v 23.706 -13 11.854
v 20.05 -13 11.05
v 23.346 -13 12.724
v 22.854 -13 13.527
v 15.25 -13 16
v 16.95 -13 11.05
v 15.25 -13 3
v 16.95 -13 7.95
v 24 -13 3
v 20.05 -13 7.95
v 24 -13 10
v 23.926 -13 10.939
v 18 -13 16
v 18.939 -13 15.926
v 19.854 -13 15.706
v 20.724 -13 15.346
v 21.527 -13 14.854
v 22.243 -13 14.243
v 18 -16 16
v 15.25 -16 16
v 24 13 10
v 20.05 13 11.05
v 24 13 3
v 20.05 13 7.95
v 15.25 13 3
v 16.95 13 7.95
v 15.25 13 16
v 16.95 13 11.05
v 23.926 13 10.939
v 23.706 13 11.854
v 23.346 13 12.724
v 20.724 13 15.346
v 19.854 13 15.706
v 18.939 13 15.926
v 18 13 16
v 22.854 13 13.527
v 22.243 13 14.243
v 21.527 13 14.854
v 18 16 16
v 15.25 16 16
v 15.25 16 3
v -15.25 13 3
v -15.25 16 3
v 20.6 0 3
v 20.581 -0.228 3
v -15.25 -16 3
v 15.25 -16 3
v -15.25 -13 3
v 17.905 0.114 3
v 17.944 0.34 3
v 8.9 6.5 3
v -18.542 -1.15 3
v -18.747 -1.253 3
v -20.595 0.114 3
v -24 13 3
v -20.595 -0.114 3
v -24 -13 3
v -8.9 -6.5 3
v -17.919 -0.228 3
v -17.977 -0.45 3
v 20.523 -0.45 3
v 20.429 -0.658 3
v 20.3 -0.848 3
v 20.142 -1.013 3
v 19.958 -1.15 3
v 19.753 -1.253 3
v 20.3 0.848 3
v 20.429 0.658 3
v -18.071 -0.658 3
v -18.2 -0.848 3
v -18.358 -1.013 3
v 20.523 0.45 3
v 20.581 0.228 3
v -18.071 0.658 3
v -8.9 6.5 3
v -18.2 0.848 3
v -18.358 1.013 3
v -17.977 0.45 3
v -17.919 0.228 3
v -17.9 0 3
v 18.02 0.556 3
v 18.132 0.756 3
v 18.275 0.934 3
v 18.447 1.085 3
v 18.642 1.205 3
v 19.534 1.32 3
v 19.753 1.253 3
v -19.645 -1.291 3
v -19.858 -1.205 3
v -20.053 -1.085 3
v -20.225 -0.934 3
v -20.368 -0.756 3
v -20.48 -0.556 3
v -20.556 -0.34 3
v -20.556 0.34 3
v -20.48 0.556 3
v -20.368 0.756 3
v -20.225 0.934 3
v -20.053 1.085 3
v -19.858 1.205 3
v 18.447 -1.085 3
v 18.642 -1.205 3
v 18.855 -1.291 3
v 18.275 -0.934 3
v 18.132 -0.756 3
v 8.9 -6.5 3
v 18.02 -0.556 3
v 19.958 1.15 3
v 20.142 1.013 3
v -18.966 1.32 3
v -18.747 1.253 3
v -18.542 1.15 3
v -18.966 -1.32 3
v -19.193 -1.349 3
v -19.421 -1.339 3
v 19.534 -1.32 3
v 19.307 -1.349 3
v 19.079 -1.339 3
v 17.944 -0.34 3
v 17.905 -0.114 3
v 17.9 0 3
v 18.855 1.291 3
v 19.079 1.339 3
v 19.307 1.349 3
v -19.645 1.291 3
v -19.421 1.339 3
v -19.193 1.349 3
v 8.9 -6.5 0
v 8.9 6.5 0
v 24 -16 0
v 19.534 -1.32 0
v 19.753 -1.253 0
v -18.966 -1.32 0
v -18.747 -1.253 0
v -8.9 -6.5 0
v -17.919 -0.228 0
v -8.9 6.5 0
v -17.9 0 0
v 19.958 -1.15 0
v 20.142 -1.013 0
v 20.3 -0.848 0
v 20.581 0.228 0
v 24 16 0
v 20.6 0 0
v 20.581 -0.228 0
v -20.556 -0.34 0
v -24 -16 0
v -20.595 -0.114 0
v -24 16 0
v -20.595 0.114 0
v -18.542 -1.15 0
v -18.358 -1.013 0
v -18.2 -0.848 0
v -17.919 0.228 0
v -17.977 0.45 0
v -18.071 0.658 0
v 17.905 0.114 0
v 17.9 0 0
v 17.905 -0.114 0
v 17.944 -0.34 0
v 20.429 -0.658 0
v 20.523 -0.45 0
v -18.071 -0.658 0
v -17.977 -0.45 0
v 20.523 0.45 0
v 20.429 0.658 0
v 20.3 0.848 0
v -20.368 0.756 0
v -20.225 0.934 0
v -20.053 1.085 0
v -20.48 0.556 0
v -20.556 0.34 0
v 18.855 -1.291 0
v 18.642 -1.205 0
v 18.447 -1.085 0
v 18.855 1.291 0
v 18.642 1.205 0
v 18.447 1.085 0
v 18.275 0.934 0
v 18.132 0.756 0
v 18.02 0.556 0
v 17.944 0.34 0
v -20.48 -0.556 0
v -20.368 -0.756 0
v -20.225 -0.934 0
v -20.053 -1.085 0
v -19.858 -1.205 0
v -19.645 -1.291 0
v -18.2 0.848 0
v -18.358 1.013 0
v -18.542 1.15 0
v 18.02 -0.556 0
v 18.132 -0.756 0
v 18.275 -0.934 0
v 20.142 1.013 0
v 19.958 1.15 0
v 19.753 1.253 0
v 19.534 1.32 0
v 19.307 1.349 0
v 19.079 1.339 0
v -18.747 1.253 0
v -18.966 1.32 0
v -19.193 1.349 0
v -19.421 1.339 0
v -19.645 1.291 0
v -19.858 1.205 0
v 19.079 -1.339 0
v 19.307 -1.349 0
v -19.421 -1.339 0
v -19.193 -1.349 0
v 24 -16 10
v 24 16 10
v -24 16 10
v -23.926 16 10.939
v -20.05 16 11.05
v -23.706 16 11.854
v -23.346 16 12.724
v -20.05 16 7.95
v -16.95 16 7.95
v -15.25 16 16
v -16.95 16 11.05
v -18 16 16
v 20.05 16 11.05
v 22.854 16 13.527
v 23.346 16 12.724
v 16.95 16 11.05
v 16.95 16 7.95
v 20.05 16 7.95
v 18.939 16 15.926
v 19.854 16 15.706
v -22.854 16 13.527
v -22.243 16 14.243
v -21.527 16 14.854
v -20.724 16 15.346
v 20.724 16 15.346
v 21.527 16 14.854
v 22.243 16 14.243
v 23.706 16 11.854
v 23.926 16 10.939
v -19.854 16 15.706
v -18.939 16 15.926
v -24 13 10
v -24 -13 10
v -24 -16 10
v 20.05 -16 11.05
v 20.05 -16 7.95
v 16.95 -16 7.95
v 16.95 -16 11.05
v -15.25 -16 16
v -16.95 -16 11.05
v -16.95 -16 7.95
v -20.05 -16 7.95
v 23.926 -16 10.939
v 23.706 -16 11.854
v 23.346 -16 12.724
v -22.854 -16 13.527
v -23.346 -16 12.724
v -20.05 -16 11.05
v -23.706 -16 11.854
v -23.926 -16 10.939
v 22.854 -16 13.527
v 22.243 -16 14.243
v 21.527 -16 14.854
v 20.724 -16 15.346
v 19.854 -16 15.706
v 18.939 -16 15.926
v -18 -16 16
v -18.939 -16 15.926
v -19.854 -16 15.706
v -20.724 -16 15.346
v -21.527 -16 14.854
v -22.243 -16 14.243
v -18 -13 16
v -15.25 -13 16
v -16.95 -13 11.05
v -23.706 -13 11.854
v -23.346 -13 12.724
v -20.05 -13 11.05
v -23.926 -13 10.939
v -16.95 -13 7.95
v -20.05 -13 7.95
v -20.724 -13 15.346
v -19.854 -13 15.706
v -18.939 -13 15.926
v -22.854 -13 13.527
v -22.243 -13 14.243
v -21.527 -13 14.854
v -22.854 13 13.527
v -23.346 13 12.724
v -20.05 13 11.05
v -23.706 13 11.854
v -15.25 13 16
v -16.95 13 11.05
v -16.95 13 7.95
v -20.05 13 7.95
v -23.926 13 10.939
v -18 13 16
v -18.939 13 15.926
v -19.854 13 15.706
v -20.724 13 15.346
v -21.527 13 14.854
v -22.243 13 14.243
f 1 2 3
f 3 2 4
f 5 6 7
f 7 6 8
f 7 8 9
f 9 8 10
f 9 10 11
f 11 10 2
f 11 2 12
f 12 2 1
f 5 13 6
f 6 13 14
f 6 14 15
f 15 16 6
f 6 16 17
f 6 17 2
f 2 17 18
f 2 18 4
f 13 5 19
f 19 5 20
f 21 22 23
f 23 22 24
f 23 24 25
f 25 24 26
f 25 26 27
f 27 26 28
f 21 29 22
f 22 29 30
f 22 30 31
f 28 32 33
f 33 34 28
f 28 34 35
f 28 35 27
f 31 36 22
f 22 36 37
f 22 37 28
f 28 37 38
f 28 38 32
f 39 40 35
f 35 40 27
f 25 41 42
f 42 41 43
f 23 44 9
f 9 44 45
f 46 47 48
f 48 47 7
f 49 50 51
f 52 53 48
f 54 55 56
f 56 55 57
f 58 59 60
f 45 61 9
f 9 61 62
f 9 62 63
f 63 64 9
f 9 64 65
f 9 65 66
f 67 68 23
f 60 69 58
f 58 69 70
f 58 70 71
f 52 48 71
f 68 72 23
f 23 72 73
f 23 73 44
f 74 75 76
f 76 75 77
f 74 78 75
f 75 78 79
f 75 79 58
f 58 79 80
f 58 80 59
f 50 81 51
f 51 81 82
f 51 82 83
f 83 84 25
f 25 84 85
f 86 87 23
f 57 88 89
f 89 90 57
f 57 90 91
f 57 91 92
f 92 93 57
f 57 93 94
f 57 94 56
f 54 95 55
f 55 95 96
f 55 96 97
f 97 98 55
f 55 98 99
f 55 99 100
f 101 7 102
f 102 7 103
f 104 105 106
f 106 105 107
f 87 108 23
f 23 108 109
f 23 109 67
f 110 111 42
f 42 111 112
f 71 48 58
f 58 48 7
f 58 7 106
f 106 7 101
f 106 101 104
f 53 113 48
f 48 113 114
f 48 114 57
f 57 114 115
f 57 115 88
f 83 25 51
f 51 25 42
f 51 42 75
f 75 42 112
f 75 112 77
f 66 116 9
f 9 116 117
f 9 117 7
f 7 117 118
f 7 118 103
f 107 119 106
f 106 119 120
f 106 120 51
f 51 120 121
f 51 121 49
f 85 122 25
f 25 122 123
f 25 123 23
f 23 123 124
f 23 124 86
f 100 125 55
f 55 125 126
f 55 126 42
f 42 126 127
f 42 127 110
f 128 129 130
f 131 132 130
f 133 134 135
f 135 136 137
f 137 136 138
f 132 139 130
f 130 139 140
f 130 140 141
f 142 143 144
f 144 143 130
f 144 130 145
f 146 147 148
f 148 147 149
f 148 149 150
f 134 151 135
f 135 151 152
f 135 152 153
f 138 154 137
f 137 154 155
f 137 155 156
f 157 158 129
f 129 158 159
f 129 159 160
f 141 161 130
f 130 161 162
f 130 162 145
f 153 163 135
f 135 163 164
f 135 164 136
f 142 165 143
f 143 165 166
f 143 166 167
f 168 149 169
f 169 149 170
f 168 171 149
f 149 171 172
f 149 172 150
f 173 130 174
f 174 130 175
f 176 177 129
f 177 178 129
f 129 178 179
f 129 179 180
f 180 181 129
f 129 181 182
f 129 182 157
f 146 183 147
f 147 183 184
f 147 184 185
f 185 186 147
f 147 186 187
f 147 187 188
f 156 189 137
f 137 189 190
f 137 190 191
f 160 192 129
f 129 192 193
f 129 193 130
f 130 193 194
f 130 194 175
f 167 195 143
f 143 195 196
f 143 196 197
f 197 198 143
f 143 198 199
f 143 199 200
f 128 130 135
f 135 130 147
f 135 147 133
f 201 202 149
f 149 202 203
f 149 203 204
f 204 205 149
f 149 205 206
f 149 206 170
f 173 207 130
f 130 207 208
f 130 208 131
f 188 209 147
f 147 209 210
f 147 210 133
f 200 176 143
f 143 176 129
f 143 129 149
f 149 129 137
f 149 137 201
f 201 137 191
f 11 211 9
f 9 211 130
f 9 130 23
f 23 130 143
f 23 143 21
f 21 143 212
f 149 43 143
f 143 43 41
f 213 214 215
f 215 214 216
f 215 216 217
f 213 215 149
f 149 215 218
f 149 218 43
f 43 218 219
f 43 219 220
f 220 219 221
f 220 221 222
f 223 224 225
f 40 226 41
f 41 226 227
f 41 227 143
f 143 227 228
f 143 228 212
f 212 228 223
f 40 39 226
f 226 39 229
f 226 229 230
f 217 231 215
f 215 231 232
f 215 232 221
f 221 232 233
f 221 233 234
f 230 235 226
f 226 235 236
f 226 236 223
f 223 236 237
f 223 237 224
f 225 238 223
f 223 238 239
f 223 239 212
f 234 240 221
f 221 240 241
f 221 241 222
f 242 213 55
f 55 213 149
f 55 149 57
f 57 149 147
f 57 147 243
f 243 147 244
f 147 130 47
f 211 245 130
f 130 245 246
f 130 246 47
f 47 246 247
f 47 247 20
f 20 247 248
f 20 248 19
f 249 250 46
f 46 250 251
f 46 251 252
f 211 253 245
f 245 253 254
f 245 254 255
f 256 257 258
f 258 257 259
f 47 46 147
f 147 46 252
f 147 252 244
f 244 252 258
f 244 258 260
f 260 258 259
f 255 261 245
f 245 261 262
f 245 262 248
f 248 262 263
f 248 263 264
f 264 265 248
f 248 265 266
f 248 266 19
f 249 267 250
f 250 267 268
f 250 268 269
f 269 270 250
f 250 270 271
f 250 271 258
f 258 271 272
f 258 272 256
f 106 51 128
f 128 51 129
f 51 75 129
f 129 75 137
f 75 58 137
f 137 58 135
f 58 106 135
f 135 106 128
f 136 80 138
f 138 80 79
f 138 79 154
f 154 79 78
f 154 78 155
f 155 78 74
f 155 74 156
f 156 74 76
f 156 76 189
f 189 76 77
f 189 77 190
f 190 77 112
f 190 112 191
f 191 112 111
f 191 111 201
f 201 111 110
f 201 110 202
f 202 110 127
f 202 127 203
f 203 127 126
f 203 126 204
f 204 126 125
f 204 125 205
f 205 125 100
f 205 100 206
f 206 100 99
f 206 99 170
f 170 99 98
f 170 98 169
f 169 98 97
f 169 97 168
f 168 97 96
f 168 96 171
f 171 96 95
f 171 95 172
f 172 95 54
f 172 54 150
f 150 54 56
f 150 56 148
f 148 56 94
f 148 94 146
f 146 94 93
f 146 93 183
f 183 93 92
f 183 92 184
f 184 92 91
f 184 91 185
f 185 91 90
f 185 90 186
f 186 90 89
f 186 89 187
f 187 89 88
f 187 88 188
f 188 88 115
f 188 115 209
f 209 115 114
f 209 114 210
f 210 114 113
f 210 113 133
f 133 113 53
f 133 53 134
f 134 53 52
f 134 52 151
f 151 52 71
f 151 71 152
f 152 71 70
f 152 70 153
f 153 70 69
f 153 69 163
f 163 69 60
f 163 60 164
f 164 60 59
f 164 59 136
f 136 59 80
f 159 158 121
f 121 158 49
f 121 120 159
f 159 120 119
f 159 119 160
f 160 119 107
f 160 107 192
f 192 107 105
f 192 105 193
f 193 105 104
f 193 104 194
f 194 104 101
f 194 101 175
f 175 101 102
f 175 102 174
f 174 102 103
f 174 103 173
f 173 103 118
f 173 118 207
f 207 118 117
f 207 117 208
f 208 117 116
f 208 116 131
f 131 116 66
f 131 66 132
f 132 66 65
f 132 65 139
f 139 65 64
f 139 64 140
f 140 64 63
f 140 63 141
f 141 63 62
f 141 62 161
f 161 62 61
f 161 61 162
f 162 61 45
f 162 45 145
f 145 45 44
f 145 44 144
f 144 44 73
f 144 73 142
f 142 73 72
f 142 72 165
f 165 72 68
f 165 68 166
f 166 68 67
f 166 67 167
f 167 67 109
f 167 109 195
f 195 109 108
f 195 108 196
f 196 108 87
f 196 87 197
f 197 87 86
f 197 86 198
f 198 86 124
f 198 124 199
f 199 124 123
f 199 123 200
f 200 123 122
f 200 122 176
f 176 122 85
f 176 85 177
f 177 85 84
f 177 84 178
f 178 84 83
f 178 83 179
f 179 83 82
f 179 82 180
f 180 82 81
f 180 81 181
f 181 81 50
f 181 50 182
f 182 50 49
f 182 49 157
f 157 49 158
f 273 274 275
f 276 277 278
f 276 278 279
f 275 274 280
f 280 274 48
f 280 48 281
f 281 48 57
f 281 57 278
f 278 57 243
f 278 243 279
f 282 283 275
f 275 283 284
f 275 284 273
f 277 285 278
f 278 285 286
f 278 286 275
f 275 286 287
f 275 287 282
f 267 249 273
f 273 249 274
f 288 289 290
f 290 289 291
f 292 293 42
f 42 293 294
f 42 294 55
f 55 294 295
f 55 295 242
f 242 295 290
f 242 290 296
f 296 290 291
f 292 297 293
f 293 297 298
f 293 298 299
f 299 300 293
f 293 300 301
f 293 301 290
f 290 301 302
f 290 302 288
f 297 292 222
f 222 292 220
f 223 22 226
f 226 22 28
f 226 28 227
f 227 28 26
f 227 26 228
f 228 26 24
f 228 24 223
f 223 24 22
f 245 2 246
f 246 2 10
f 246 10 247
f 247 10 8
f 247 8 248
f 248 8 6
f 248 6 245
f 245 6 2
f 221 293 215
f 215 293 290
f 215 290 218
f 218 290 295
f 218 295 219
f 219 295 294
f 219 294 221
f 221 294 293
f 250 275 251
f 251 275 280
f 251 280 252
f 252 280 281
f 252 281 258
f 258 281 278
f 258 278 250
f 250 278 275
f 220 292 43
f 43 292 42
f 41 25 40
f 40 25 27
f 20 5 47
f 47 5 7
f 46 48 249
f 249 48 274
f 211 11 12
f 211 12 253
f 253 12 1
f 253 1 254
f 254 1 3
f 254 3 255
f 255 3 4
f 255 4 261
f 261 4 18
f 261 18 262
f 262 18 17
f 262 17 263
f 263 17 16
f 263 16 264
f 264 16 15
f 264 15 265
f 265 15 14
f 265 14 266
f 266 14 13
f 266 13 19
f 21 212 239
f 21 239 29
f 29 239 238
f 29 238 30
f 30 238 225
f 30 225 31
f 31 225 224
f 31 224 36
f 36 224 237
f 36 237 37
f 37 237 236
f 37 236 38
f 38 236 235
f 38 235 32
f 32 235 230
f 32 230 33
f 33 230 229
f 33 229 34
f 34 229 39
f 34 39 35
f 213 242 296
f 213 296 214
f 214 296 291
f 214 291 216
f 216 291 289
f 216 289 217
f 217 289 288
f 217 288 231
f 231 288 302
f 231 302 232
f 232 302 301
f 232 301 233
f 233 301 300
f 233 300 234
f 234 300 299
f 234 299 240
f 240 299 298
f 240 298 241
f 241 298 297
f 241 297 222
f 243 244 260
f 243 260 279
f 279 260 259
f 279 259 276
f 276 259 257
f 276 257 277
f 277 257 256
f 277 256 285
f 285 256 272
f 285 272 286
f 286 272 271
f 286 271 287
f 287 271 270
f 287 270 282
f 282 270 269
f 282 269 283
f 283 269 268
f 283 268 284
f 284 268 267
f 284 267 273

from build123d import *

# Parameters (mm, degrees)
ESBO_O6_W                  = 48
ESBO_O6_H                  = 32
ESBO_O6_W_2                = 17.8
ESBO_O6_H_2                = 13
RESSALTO_EXTRUS_O2_DEPTH   = 3
ESBO_O7_R                  = 1.35
CORTE_EXTRUS_O3_DEPTH      = 30
ESBO_O8_W                  = 48
ESBO_O8_H                  = 3
RESSALTO_EXTRUS_O3_DEPTH   = 13
CORTE_EXTRUS_O4_DEPTH      = 41.902322672
CORTE_EXTRUS_O4_DEPTH_BACK = 41.902322672
ESBO_O10_W                 = 3.1
ESBO_O10_H                 = 3.1
CORTE_EXTRUS_O5_DEPTH      = 41.902322672
CORTE_EXTRUS_O5_DEPTH_BACK = 41.902322672
ESBO_O11_W                 = 30.5
ESBO_O11_H                 = 13
FILETE1_R                  = 6
FILETE2_R                  = 6
FILETE3_R                  = 6


with BuildPart() as part:
    # Esboço6 → Ressalto-extrusão2 (new body)
    with BuildSketch(Plane.XY):
        Rectangle(ESBO_O6_W, ESBO_O6_H)
        Rectangle(ESBO_O6_W_2, ESBO_O6_H_2, mode=Mode.SUBTRACT)
    extrude(amount=RESSALTO_EXTRUS_O2_DEPTH)

    # Esboço7 → Corte-extrusão3 (cut, through all)
    with BuildSketch(Plane.XY.offset(3)):
        with Locations((-19.25, 0)):
            Circle(ESBO_O7_R)
        with Locations(Location((19.25, 0, 0), (0, 0, 180))):
            Circle(ESBO_O7_R)
    extrude(amount=-CORTE_EXTRUS_O3_DEPTH, mode=Mode.SUBTRACT)

    # Esboço8 → Ressalto-extrusão3 (add)
    with BuildSketch(Plane.XY.offset(3)):
        with Locations((0, -14.5)):
            Rectangle(ESBO_O8_W, ESBO_O8_H)
        with Locations((0, 14.5)):
            Rectangle(ESBO_O8_W, ESBO_O8_H)
    extrude(amount=RESSALTO_EXTRUS_O3_DEPTH)

    # Esboço10 → Corte-extrusão4 (cut, two sides: drawn at the far end of the back side and taken through both)
    with BuildSketch(Plane.XZ.offset(-13).offset(-CORTE_EXTRUS_O4_DEPTH_BACK)):
        with Locations((18.5, 9.5)):
            Rectangle(ESBO_O10_W, ESBO_O10_H)
        with Locations((-18.5, 9.5)):
            Rectangle(ESBO_O10_W, ESBO_O10_H)
    extrude(amount=CORTE_EXTRUS_O4_DEPTH + CORTE_EXTRUS_O4_DEPTH_BACK, mode=Mode.SUBTRACT)

    # Esboço11 → Corte-extrusão5 (cut, two sides: drawn at the far end of the back side and taken through both)
    with BuildSketch(Plane.XZ.offset(-13).offset(-CORTE_EXTRUS_O5_DEPTH_BACK)):
        with Locations((0, 9.5)):
            Rectangle(ESBO_O11_W, ESBO_O11_H)
    extrude(amount=CORTE_EXTRUS_O5_DEPTH + CORTE_EXTRUS_O5_DEPTH_BACK, mode=Mode.SUBTRACT)

    # Filete1
    filete1_edges = [part.edges().sort_by_distance(p)[0] for p in [
        (24, -14.5, 16),
    ]]
    fillet(filete1_edges, radius=FILETE1_R)

    # Filete2
    filete2_edges = [part.edges().sort_by_distance(p)[0] for p in [
        (24, 14.5, 16),
    ]]
    fillet(filete2_edges, radius=FILETE2_R)

    # Filete3
    filete3_edges = [part.edges().sort_by_distance(p)[0] for p in [
        (-24, 14.5, 16),
        (-24, -14.5, 16),
    ]]
    fillet(filete3_edges, radius=FILETE3_R)


solid = part.part
